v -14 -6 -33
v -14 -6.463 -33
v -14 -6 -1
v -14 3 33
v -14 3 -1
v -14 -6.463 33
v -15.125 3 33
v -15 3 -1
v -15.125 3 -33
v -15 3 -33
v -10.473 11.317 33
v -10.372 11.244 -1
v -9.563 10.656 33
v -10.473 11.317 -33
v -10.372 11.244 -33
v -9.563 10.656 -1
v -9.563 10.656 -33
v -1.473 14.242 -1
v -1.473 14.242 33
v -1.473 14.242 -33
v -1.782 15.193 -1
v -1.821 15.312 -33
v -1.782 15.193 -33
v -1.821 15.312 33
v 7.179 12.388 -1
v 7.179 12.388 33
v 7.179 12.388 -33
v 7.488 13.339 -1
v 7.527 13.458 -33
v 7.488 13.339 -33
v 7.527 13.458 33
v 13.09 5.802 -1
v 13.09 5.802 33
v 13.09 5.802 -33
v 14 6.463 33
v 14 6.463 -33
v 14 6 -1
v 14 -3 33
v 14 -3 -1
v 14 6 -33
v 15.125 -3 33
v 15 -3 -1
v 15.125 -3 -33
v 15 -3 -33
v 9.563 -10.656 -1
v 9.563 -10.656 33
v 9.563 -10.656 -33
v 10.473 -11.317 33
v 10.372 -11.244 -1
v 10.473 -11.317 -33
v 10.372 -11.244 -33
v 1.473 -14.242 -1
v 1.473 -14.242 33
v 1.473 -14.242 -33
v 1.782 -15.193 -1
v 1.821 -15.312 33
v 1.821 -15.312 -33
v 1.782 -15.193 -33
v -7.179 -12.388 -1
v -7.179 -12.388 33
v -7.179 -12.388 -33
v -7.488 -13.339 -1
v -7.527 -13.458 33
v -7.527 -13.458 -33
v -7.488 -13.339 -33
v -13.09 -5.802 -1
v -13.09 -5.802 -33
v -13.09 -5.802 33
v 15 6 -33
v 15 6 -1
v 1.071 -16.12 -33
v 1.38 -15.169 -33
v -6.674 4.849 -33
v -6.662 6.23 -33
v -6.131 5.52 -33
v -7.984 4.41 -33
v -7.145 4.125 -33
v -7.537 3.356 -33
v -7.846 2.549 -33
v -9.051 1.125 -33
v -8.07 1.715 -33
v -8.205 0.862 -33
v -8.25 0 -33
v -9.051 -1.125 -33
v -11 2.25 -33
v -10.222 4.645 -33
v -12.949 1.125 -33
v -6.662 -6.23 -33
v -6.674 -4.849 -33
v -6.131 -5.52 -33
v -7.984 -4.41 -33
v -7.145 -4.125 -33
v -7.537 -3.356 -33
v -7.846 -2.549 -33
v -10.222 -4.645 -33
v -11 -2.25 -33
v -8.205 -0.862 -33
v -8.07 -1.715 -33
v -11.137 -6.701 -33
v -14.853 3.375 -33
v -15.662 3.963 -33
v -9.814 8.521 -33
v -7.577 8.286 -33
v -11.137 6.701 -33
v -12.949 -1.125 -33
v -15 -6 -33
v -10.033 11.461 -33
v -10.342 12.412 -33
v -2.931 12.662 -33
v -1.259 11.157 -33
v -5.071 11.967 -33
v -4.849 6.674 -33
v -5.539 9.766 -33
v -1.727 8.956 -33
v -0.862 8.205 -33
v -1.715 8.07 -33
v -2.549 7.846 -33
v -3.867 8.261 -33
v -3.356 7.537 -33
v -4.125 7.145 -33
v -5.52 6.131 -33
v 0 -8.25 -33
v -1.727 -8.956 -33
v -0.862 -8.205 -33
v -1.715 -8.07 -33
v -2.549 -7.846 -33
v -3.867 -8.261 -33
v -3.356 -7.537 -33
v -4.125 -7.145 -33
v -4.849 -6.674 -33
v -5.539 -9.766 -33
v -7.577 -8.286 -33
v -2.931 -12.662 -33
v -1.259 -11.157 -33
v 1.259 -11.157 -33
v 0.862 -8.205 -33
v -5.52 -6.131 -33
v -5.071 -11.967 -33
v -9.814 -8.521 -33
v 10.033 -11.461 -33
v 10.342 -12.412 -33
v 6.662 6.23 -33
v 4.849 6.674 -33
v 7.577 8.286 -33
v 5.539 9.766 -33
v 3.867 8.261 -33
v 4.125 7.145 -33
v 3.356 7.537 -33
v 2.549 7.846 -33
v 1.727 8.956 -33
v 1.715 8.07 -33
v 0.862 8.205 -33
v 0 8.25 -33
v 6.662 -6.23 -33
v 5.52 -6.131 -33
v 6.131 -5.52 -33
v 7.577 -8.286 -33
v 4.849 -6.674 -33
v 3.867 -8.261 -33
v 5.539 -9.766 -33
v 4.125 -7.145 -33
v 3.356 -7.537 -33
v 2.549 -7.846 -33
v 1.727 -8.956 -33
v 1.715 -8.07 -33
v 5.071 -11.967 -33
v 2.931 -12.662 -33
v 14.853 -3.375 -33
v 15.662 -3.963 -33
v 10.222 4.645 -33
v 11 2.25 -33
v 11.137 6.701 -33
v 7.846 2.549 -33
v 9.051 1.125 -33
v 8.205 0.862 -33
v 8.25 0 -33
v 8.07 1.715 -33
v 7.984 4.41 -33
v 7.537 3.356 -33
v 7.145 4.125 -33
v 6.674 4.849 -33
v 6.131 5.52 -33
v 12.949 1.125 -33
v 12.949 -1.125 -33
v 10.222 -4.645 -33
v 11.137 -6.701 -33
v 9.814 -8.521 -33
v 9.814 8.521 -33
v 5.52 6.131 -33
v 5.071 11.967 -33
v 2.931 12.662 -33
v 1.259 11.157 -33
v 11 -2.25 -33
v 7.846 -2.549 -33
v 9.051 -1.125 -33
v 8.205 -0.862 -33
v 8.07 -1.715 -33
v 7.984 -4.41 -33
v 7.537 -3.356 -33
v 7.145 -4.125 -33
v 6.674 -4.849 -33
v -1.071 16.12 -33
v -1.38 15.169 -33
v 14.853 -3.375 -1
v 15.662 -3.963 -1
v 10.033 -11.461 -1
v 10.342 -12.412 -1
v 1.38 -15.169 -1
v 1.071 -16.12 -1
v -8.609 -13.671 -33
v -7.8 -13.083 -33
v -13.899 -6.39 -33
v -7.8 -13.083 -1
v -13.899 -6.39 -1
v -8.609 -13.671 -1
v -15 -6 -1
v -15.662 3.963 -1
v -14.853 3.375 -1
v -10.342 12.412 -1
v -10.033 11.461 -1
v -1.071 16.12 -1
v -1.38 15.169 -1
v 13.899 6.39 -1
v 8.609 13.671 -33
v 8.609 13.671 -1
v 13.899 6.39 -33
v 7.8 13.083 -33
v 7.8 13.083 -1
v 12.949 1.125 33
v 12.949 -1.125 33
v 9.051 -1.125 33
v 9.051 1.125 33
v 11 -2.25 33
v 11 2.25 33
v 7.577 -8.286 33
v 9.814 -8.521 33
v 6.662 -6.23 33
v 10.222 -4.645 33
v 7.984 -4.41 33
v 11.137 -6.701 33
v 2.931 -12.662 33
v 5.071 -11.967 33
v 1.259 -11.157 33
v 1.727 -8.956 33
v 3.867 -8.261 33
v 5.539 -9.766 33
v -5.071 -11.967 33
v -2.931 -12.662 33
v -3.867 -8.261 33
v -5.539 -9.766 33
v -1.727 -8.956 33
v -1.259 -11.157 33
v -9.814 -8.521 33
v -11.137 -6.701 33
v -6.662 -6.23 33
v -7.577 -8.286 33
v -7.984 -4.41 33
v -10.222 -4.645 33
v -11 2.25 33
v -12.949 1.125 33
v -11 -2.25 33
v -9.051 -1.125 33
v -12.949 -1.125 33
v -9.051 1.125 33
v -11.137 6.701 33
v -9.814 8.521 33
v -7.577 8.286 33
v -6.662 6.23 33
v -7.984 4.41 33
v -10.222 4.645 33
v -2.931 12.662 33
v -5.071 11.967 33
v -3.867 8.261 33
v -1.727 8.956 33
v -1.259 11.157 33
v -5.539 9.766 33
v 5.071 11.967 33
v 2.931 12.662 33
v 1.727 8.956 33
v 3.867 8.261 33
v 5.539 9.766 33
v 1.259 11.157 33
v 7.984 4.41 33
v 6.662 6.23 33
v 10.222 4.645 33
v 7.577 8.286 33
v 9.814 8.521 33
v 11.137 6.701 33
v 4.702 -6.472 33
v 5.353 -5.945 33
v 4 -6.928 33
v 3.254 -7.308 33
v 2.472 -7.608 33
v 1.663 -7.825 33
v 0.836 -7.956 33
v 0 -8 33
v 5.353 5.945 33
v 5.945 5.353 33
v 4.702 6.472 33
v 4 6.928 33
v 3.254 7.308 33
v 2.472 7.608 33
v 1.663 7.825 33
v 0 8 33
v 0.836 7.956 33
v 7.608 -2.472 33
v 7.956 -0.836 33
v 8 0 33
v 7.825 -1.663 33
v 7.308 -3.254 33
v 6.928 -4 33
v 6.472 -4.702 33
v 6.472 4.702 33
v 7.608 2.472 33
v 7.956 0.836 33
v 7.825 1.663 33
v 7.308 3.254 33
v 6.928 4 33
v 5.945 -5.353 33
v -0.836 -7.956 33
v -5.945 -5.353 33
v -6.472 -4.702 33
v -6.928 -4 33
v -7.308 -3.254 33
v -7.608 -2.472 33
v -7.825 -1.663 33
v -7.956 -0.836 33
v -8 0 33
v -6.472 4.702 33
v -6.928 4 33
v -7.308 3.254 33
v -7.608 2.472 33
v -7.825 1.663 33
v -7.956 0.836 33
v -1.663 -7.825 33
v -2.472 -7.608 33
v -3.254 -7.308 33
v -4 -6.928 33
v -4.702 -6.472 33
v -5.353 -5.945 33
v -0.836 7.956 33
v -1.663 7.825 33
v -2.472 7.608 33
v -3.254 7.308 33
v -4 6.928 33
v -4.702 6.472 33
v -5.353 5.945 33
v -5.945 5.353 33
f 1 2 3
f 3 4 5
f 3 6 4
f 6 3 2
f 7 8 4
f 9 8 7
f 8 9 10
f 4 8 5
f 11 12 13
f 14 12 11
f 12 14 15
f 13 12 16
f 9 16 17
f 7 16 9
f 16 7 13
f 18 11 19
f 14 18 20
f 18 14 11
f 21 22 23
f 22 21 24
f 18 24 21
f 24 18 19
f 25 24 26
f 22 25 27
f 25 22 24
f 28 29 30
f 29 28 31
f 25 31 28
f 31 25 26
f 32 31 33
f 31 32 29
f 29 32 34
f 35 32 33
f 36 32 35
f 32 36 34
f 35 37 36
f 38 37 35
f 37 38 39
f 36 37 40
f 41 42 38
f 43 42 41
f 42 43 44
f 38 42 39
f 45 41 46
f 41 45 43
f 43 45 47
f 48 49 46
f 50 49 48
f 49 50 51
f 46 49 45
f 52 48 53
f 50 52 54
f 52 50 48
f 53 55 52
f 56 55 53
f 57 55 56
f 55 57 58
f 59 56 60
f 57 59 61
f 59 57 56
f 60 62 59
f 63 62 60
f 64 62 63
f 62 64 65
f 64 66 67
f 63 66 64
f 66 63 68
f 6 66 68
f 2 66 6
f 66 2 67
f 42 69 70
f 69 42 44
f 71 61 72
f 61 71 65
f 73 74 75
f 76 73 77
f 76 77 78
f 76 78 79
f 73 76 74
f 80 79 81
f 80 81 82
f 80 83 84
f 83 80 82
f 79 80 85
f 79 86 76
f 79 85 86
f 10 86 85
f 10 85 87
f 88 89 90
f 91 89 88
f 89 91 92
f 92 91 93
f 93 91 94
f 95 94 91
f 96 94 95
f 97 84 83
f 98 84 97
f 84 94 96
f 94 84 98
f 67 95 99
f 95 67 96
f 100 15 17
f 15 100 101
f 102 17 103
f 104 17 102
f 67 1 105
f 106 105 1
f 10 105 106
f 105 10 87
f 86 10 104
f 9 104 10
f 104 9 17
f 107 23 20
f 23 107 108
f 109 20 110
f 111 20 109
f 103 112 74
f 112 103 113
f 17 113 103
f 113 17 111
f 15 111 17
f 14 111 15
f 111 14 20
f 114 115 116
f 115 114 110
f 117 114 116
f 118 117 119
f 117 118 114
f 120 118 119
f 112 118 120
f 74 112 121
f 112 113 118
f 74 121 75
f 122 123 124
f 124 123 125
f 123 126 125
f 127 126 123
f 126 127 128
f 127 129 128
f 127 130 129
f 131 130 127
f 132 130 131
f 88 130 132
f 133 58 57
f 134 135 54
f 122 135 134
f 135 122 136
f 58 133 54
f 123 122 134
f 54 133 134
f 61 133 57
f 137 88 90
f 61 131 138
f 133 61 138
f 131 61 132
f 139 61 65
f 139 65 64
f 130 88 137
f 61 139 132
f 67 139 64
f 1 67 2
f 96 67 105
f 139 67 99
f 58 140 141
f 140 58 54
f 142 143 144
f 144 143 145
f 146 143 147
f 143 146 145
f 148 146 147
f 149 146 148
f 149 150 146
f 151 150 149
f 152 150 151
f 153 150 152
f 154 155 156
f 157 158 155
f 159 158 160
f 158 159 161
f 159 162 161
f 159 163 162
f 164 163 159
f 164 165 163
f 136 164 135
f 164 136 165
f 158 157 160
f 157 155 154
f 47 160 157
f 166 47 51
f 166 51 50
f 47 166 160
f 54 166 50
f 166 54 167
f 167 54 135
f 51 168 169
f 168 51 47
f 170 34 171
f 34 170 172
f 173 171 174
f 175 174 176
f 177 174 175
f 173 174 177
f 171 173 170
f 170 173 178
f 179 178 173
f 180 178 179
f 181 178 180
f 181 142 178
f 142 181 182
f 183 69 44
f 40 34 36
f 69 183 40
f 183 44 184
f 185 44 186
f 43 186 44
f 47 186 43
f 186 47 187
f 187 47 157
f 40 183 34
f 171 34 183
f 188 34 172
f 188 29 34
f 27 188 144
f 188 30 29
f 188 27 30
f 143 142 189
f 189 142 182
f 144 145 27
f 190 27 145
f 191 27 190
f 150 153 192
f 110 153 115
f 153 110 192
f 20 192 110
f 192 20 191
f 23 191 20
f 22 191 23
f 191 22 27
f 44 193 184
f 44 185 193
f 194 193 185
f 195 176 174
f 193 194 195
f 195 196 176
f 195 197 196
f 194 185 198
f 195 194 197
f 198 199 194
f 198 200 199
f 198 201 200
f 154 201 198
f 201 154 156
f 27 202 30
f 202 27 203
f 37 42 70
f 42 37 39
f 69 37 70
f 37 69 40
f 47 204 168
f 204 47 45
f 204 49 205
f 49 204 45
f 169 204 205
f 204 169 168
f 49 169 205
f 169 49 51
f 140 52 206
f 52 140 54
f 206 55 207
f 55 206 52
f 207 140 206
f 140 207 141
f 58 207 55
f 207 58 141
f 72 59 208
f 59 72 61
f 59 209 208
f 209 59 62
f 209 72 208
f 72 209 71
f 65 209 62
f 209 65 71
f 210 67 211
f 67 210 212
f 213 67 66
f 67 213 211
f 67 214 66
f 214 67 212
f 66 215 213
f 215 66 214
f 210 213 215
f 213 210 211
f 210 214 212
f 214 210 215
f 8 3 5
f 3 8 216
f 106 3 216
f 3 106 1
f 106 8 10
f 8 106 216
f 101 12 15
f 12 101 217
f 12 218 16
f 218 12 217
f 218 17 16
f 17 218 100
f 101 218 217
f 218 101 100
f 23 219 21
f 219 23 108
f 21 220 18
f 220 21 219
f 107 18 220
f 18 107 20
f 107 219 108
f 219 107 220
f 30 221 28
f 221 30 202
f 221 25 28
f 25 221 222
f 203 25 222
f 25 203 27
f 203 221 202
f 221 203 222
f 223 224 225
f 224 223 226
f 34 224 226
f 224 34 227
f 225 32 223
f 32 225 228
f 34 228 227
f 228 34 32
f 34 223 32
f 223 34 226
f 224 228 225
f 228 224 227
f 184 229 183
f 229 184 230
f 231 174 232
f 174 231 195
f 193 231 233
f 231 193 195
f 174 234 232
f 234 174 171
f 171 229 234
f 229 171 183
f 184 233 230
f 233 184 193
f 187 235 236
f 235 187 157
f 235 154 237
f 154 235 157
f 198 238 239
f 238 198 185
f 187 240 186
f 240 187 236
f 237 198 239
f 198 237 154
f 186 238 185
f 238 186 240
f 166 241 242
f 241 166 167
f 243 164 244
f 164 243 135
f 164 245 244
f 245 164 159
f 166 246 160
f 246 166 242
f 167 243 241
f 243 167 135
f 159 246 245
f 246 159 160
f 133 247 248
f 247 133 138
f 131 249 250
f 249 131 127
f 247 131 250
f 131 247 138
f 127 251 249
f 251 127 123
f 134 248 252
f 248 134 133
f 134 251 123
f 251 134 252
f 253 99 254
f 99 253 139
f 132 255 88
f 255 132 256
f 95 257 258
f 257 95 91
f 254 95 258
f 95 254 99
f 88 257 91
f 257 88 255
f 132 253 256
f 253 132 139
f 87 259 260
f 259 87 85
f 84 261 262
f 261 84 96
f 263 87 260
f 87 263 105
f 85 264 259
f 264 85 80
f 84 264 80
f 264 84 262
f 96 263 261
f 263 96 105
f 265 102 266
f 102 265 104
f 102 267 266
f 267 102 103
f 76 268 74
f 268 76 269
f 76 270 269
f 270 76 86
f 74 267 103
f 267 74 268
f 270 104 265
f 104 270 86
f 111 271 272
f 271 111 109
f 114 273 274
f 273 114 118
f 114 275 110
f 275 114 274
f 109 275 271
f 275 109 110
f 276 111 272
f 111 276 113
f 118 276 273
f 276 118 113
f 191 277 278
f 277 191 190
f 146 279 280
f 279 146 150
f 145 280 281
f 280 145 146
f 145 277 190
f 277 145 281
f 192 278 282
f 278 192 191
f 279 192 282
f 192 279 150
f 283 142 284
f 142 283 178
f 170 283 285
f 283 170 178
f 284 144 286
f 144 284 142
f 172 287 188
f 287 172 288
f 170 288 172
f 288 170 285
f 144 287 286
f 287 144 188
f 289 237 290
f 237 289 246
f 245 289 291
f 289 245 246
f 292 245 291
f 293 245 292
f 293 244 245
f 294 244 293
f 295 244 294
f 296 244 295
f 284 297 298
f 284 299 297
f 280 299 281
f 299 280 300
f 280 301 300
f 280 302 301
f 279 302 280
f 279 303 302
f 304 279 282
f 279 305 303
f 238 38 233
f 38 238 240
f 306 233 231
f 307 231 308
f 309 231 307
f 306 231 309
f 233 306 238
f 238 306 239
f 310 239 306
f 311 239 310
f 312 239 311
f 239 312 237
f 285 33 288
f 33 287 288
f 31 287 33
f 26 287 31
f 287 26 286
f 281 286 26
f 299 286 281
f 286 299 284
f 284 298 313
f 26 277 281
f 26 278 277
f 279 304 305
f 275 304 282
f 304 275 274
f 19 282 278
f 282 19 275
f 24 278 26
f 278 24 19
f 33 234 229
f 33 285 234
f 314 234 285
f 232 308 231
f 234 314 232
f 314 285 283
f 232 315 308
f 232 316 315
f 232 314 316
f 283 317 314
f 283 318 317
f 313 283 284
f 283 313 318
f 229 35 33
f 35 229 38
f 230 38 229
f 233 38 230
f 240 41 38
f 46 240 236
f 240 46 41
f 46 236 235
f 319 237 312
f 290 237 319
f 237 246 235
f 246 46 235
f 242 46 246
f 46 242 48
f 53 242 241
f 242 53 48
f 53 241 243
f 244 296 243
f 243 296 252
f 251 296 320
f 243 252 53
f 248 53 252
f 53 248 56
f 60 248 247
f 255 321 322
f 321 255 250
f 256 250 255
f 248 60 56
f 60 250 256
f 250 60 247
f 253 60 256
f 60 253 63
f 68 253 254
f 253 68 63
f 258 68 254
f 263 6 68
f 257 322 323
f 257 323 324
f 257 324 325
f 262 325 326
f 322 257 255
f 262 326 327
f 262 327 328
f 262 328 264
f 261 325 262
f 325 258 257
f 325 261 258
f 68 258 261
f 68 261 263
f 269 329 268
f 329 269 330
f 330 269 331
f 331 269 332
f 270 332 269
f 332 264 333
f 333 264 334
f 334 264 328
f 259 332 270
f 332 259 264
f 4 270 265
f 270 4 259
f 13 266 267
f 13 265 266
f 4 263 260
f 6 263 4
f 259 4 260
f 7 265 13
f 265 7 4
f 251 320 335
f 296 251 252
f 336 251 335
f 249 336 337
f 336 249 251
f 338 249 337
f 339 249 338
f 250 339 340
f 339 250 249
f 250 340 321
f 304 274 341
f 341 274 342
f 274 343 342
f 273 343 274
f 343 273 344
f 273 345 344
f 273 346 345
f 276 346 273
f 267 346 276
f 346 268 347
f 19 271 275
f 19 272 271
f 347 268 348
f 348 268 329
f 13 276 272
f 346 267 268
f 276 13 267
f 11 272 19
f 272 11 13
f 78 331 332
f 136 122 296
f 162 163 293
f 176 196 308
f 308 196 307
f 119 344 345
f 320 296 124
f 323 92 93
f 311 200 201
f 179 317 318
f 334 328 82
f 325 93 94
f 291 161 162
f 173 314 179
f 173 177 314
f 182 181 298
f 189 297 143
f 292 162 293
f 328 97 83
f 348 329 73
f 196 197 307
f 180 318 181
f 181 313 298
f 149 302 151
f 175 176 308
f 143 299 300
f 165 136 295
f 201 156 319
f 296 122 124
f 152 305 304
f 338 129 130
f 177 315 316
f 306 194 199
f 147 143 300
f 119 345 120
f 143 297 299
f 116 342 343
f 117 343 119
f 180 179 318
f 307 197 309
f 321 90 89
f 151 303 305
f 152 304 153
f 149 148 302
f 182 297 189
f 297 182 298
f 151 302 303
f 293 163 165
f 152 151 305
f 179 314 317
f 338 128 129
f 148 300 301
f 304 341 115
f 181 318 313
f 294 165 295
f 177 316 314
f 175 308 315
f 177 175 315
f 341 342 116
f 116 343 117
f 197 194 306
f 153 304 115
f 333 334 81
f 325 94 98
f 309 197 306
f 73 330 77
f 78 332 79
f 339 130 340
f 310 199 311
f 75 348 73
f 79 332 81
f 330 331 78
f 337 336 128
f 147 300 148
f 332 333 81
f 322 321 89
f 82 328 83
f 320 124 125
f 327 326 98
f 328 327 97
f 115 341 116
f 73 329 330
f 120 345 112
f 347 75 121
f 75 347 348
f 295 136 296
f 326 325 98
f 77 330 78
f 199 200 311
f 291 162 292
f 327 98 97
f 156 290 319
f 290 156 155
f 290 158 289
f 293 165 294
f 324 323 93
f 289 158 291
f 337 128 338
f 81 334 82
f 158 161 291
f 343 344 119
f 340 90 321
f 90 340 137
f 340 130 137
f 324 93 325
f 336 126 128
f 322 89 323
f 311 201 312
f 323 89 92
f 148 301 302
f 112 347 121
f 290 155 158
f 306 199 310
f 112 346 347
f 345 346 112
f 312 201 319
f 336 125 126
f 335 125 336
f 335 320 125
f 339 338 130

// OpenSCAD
height = 33 + 33; // 33mm is block len, double that with projectile

rotate([180,0,0]) union() {
    difference() {
        // main body
        cylinder(d=100,h=height, center=true);
        // cut into decagon
        for (i = [0:9]) rotate([0,0,i*36]) translate([500+16,0,0]) cube([1000,1000,1000], center=true);
        // with step for fixing lego at side
        for (i = [0:9]) rotate([0,0,i*36]) translate([-500-14,500-3,0]) cube([1000,1000,1000], center=true);
        // laser holes
        for (i = [0:9]) rotate([0,0,i*36]) translate([11,0,0]) rotate([0,0,90]) cylinder(d=4.5,h=1000, center=true, $fn=6);
        // center hole
        cylinder(d1=16,d2=16.5,h=height, center=true, $fn=60);
    }
    *translate([12,0,0])cube([8,10,10],center=true);

    // stesp to fix lego's bottom
    for (i = [0:9]) rotate([0,0,i*36]) translate([15-0.5,-1.5,height/2-(height/2-1)/2]) cube([1,9,height/2-1], center=true);
}
